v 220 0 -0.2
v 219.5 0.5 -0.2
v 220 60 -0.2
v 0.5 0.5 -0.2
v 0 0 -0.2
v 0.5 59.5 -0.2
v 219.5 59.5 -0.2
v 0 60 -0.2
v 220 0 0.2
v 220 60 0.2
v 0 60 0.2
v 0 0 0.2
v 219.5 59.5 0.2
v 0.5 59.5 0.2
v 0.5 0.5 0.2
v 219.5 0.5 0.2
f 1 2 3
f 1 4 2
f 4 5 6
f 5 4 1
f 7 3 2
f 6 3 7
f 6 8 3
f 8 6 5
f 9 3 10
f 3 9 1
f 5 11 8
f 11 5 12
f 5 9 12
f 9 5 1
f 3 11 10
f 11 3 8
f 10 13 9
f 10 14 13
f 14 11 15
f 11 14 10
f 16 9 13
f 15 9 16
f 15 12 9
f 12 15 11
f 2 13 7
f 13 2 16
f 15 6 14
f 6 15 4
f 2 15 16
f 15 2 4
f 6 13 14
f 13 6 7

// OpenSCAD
difference()
{
linear_extrude(height = .4, center = true, convexity = 10, twist = 0)
square([220,60]);

linear_extrude(height = 1, center = true, convexity = 10, twist = 0)
translate([.5,.5,-.1]) square([220 - 1,60 - 1]);

}
